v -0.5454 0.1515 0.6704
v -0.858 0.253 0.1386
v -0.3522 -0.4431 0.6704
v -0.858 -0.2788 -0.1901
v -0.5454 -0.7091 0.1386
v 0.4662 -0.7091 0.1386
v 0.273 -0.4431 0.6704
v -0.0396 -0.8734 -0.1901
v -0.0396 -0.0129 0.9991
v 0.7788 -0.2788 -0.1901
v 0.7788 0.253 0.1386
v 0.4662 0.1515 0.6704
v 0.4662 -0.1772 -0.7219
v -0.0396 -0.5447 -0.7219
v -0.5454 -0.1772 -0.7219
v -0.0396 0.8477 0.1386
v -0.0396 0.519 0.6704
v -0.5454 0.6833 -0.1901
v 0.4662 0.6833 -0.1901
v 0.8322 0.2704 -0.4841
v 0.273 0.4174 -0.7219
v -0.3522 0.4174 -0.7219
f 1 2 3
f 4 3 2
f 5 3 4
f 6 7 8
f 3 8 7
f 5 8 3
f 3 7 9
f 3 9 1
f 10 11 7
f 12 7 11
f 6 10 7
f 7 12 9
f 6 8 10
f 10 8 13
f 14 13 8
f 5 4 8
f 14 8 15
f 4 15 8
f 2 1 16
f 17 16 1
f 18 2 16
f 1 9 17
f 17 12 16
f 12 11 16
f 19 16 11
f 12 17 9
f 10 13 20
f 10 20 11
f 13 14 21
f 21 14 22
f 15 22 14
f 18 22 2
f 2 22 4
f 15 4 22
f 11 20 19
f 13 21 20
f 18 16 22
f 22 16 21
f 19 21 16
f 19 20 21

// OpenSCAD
polyhedron( points = [[-0.352235988555073, -0.443143809882323, 0.670436135868615], [0.272979814430868, -0.443143809882323, 0.670436135868615], [0.466182122711338, -0.709063973983941, 0.138595807606587], [-0.03962808707439, -0.873411673667257, -0.190099591796377], [-0.545438296797473, -0.709063973972959, 0.138595807628552], [-0.545438296821351, 0.151471753722061, 0.670436135868615], [0.466182122601631, 0.151471753722061, 0.670436135868615], [0.778790024160169, -0.278796110134279, -0.190099591822755], [-0.0396280871525125, -0.544716274236415, -0.72193991996168], [-0.858046198260122, -0.278796110018597, -0.190099591775107], [-0.858046198245365, 0.25304421816327, 0.138595807679709], [-0.0396280871393737, 0.518964382253728, 0.670436135868615], [0.778790024130733, 0.253044218048393, 0.13859580761111], [0.466182122590953, -0.177223645708129, -0.721939920028191], [-0.545438296920761, -0.177223645751326, -0.721939919819281], [-0.545438296630379, 0.683312081926783, -0.190099591669958], [-0.0396280868264343, 0.847659781565344, 0.138595807798992], [0.466182122591084, 0.683312081849937, -0.190099591725803], [0.272979814295875, 0.417391917792823, -0.721939919918059], [-0.352235988716562, 0.417391917767382, -0.721939919797793], [-0.0396280870458963, -0.012875945996074, 0.999131535250384], [0.83218982867304, 0.270394866421842, -0.484093694603404]], faces = [[0, 5, 10, 9, 4], [0, 4, 3, 2, 1], [0, 1, 20], [0, 20, 5], [1, 2, 7, 12, 6], [1, 6, 20], [2, 3, 8, 13, 7], [3, 4, 9, 14, 8], [5, 11, 16, 15, 10], [5, 20, 11], [6, 12, 17, 16, 11], [6, 11, 20], [7, 13, 21], [7, 21, 12], [8, 14, 19, 18, 13], [9, 10, 15, 19, 14], [12, 21, 17], [13, 18, 21], [15, 16, 17, 18, 19], [17, 21, 18]]);
